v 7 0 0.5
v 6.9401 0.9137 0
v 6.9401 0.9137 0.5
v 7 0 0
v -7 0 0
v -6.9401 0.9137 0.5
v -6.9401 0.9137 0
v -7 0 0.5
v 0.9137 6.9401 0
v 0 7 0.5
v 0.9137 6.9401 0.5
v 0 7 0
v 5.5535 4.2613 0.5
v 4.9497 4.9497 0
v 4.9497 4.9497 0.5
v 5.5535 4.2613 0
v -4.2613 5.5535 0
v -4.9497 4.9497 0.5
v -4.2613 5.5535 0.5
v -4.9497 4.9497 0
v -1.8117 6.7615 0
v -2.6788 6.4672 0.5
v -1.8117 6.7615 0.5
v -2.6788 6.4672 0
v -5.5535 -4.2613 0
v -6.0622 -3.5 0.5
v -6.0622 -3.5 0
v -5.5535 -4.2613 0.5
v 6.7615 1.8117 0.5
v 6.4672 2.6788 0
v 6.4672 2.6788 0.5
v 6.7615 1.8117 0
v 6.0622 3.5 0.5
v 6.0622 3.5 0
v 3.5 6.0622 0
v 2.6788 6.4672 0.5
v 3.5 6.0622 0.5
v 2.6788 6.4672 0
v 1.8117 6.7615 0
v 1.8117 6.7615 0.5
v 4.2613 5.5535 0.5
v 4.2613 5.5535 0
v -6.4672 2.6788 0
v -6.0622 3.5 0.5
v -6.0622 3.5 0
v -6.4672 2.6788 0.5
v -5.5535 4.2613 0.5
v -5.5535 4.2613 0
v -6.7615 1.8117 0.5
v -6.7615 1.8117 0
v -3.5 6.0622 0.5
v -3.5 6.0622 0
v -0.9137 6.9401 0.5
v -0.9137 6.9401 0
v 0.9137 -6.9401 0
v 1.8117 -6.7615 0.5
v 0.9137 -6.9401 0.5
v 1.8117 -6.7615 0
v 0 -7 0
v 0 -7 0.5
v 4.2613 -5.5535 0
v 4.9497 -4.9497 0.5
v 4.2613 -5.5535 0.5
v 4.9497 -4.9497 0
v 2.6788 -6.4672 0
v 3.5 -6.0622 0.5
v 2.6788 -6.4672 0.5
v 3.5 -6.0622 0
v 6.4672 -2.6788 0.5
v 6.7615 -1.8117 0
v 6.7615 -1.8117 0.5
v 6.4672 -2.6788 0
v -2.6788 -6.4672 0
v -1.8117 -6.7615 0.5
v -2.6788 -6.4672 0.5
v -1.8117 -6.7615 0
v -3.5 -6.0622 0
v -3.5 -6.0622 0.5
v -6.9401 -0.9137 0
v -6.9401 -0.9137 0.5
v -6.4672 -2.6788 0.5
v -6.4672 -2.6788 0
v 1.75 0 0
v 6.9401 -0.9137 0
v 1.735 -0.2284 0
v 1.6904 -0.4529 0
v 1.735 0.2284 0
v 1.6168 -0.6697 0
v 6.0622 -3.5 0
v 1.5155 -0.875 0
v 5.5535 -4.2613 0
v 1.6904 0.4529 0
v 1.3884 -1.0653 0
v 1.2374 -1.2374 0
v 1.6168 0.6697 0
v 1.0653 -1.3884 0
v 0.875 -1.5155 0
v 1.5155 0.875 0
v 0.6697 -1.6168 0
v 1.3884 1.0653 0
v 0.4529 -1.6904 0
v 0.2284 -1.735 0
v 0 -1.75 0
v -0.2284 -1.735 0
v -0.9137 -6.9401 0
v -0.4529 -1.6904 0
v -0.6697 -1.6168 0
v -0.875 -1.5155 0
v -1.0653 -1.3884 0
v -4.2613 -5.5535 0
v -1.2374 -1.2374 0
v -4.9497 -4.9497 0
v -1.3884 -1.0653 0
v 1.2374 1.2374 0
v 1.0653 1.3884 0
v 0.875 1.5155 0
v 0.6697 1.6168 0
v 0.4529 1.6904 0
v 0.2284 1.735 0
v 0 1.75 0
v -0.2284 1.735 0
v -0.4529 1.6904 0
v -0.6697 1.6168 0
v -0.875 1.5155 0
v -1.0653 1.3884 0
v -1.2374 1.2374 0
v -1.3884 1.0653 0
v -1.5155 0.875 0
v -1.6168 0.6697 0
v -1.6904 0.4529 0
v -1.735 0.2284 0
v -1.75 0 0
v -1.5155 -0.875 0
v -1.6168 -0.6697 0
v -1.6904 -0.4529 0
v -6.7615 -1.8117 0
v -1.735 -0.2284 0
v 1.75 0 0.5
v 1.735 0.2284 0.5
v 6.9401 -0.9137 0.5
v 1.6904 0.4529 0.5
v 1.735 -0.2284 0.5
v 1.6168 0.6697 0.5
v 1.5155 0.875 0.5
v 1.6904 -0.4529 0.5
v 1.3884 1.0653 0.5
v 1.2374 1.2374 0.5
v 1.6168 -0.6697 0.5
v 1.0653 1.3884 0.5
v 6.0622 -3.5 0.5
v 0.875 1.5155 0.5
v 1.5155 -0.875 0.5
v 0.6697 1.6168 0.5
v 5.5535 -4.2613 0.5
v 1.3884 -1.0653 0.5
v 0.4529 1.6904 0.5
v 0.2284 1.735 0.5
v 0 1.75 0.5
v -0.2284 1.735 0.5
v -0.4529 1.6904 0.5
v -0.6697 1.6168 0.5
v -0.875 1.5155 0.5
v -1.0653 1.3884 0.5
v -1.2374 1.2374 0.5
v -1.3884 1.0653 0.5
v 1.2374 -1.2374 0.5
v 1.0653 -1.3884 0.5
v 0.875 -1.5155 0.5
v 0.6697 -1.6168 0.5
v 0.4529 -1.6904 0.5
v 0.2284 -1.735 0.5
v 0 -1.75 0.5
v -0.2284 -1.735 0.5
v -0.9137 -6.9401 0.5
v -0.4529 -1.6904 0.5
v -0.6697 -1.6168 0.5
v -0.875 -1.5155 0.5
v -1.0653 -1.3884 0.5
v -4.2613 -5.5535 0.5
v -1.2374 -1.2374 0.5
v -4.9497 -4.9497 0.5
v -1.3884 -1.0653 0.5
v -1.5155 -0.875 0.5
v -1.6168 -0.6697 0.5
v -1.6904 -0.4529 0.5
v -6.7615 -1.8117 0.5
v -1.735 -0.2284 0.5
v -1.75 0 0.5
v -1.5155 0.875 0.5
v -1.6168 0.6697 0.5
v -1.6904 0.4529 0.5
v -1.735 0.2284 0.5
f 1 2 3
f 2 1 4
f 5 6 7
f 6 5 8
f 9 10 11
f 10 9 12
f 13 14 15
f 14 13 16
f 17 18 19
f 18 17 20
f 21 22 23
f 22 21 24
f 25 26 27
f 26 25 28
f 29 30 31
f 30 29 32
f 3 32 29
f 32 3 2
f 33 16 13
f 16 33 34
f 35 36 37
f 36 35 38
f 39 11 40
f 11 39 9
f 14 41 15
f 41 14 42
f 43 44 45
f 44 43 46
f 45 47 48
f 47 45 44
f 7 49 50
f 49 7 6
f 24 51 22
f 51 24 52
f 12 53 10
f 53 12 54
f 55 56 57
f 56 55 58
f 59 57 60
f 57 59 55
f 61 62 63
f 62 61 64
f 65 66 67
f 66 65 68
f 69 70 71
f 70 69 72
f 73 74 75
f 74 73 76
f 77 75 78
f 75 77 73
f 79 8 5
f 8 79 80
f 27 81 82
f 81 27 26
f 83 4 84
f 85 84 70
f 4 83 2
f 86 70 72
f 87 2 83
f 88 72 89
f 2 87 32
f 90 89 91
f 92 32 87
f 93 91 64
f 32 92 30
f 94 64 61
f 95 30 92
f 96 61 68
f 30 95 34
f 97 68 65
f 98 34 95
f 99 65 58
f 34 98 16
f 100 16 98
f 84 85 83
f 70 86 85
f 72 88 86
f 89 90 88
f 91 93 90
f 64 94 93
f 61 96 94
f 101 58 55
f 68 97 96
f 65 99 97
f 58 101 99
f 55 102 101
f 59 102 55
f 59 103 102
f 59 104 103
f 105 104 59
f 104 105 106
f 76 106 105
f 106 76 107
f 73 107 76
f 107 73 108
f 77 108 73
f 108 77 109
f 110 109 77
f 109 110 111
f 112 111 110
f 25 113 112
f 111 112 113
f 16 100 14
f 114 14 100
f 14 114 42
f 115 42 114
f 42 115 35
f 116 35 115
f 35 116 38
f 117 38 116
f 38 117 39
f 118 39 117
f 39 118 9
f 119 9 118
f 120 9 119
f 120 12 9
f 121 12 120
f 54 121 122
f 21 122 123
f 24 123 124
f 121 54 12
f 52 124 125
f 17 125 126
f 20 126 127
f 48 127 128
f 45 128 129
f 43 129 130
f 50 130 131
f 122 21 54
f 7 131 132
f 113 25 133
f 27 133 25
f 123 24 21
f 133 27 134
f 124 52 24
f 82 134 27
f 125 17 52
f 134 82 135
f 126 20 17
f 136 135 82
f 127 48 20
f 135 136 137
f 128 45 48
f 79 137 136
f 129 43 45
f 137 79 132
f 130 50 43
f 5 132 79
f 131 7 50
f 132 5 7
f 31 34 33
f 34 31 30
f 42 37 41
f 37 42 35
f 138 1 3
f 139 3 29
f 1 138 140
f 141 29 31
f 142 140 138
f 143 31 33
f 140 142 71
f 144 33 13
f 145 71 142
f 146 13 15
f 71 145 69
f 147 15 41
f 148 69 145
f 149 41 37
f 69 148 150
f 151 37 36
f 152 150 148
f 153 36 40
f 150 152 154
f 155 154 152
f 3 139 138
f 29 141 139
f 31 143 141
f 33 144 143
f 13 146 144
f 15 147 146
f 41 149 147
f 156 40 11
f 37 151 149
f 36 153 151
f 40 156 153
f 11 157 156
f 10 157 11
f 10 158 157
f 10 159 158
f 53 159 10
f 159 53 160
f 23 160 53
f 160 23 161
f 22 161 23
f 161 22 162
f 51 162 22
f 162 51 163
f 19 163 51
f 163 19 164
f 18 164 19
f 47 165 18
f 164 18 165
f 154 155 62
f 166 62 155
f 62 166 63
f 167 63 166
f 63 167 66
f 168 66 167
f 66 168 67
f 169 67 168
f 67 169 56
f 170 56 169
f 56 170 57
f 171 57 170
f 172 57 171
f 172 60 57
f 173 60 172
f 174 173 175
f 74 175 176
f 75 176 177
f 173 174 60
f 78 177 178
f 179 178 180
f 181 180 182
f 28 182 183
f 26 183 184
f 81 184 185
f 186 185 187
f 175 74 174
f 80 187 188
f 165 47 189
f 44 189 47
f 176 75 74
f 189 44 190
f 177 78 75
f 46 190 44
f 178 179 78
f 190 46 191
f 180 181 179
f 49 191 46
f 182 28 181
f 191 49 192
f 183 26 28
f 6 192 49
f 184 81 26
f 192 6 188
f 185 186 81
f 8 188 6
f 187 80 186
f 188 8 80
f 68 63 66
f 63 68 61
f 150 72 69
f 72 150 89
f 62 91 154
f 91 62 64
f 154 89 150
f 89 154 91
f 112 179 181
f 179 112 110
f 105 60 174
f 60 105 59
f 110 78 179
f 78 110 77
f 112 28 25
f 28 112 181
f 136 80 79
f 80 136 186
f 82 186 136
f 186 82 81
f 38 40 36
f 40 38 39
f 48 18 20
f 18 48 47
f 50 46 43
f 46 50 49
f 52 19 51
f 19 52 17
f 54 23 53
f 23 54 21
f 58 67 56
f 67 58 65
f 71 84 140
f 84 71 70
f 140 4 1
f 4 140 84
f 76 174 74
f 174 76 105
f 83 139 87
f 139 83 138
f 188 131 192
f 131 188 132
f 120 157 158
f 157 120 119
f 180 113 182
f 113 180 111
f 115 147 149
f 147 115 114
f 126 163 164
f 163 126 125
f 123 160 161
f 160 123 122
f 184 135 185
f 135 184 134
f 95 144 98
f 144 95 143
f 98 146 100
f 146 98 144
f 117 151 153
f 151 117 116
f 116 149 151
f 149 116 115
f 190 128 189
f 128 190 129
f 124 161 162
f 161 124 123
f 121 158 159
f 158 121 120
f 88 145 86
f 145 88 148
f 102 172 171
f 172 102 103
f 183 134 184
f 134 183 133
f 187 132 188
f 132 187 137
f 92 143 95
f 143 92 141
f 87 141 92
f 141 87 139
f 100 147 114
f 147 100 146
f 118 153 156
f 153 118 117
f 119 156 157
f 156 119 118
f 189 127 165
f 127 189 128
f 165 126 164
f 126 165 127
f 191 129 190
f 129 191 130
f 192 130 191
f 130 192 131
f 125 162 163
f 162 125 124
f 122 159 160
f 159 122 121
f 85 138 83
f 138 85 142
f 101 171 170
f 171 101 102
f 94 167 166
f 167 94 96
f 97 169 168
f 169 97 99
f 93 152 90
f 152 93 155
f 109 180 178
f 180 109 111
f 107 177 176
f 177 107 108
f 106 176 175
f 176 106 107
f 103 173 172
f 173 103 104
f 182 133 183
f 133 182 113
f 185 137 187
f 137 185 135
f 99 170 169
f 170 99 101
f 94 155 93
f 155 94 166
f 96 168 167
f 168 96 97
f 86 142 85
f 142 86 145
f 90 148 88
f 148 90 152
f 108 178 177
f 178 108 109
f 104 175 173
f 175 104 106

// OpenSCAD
// file: parameters.scad
// =============================================================================
// Gen-CA — nightly 2026-10-13 (physics_scorer, honest magpylib watts)
// Break the plate limit instead of the physics: the 2026-10-11 scans showed watts keep rising with machine size, but Ø194 was the largest one-piece stator/rotor set that fits one 410 mm plate. Gen-CA makes the steel disc the structural rotor and prints the magnet carrier as 8 bolt-on arcs per rotor plus a separate D-flat hub, opens the stator centre, and prints the 12 bobbin bases in place inside their stator bays, so a much bigger R84 / Ø226 machine (bobbins r64–104, 4.95 mm copper, 7.55 mm magnet gap) still packs on ONE plate.
// Clocking 0 deg (magnets N facing S) + D-flat keyed bore + index notch + flip-symmetric hole map.
// Windable 2-piece bobbin; turns = physics_scorer turns_fit; copper only between flanges.
// Steel back-iron: 2× Ø194 × 4.76 mm (3/16") mild-steel discs (steel_backiron_disc.dxf); magnets sit ON the steel
// (through-pockets) -> score with --back-iron. Night 2026-10-13.
// =============================================================================
topology            = "dual_rotor";

// --- Wire / winding (physics_scorer winding-fit) -------------------------------
wire_awg            = 26;
wire_od             = 0.45;     // insulated OD mm (bare 0.405)
fill_realistic      = 0.65;     // insulated-wire area / window (DENSE layered wind with a jig; scorer cap 0.65)
turns               = 366;       // = physics_scorer turns_fit (do NOT raise)
coil_former_type    = "bobbin";
coil_core_inset     = 18.10;     // radial copper build: hub = copper boundary inset by this
wind_build_axial    = 0.0;      // nothing proud of the flanges
wind_build_radial   = 0.0;

// --- Bobbin (base + lid) ---------------------------------------------------------
coil_id_r           = 64.00;    // copper boundary sector
coil_od_r           = 104.00;
span_deg            = 26.87;    // = pitch - 2*asin((wall+0.85)/coil_id_r) -> >=1.2 mm stator web
former_web          = 4.95;     // copper height between flanges (TALL copper: steel keeps Bz up)
flange_t            = 0.80;     // >= 0.8 mm FDM wall rule (tall winds push on the flanges)
wall                = 0.80;     // flange lip beyond copper
former_bare_h       = former_web + 2 * flange_t;
coil_envelope_h     = former_bare_h + 2 * wind_build_axial;
tab_w               = 7.0;
tab_len             = 7.0;
tab_h               = former_bare_h / 2;
pin_d               = 1.9;      // 1.75 mm filament locating pin
coil_mount_r        = coil_od_r + 0.2 + 4.0;
lead_y              = 1.6;
lead_slot_w         = 0.9;
lead_groove_d       = 0.6;

// --- Gap -------------------------------------------------------------------------
run_clear           = 0.50;     // rotor face -> flange
gap_spacer_h        = run_clear + wind_build_axial;
m2m                 = coil_envelope_h + 2 * run_clear;   // rotor face to rotor face (= gap_sleeve length)

// --- Stator ----------------------------------------------------------------------
coil_stations       = 12;
bay_clear           = 0.35;     // 0.35 mm: bobbin BASES print IN PLACE inside the stator bays (print-in-place gap), then pop out
stator_thick        = former_bare_h;                        // bobbins flush both faces
stator_od           = 226;
shaft_clear_stator  = 14.0;     // stator is static; gap sleeve OD 12 spins inside
stator_ir           = 58.85;    // ANNULAR stator: open centre (nested one-plate pack); inner rim 4.0 mm

// --- Rotor(s) --------------------------------------------------------------------
magnet_Br           = 1.43;     // N52
magnet_d_large      = 20.0;
magnet_h_large      = 5.0;      // one O20x5 per pocket
magnet_h_small      = 5.0;      // unused: no O5 pockets in this kit
halbach_magnetisation = "none";  // NO O5 assist magnets in this kit (scan: they lower the 4-pole score)
rotor_b_same_axis   = true;     // same-index magnets share one axis: N faces S across the gap
large_pocket_d      = 20.3;
small_pocket_d      = 5.3;
pocket_h            = 5.00;     // THROUGH the carrier: magnet back face sits on the steel disc (FLUSH seat: carrier = magnet height, magnet face level with the rotor face)
large_n             = 8;
R_large             = 84.0;
small_r_list        = [];       // no O5 pockets
carrier_od          = 194.0;
ring_ir             = 70.85;    // RING rotor: PLA magnet ring r ring_ir..carrier_od/2 (steel disc = structural rotor)
hub_flange_od       = 74.0;     // separate rotor_hub flange (inside the ring, flush with the ring face)
csk_d               = 6.6;      // M3 countersunk head pocket (ISO 10642 head 6.0 nominal) on the stator face
csk_depth           = 1.55;     // = (csk_d - m3_clear) / 2: 90 deg cone; head sits 0.3 mm below the face
n_seg               = 8;        // magnet-carrier ARCS per rotor (segmented carrier)
seg_deg             = 360 / n_seg;
seg_start           = -22.5;   // arc edge angle (between pocket 0 and its clamp bolt)
seg_kerf_deg        = 0.4;      // gap between neighbouring arcs on the steel
carrier_thick       = pocket_h;
hub_h               = 12.0;     // > steel_t + insert: radial set-screw clears the steel
hub_od              = 24.0;     // slim hub so the M4 brace rods fit at R~18 inside the coil ring
hub_insert_d        = 4.0;      // M3 heat-set insert, radial, bears on the D-flat
rotor_b_offset_deg  = 0.0;      // CLOCKING: magnets directly opposite
shaft_key           = "dflat";
dflat_depth         = 0.5;      // 8 mm shaft with 0.5 mm flat (7.5 across flat)
index_notch_d       = 3.0;

// --- Steel back-iron (buyable laser-cut) -------------------------------------------
steel_t             = 4.76;      // mild steel thickness (image method ignores it; sized from steel_flux.py so the return path stays well below saturation)
steel_center_hole   = 26.0;     // slips over the rotor hub (OD 24)
steel_od            = carrier_od;   // steel disc OD = rotor carrier OD

// --- Modular MAX interface ----------------------------------------------------------
shaft_bore          = 8.35;
dflat_x             = 4.0 - dflat_depth + (shaft_bore - 8.0) / 2;
bearing_d           = 21.85;
bearing_h           = 7.2;
m3_clear            = 3.5;
bolt_r_inner        = 30.0;     // M3 steel-disc clamp bolts (inside the magnet ring)
bolt_n_inner        = 4;
bolt_inner_angles   = [0, 90, 180, 270];
bolt_r_outer        = 84.0;     // second M3 steel-disc clamp ring
bolt_outer_angles   = [22.5, 67.5, 112.5, 157.5, 202.5, 247.5, 292.5, 337.5];
flange_bolt_r       = 107.5;     // frame rods: OUTSIDE the rotor OD (rotors spin inside them)
flange_bolt_n       = 4;
flange_bolt_offset  = 45.00;    // between coil stations -> never cuts a lead groove/tab
brace_r             = 18.0;
brace_d             = 4.3;      // temporary M4 jack rods (assembly only)
brace_n             = 4;
brace_angles        = [45, 135, 225, 315];          // flip-symmetric

spacer_pad_od       = 14.0;
spacer_pad_id       = m3_clear;
endbell_od          = 225.0;
endbell_thick       = 8.0;
endbell_shaft_clear = 10.0;
collar_h            = 10.0;
standoff_od         = 9.0;
frame_standoff_h    = run_clear + carrier_thick + hub_h + collar_h + 2.0;
sleeve_od           = 12.0;
plate_max_mm        = 410;

$fn = 64;
// main file
// Gen-CA — assembly gap shim, h = run_clear (rotor face -> flange); copper is inside the flanges
include <parameters.scad>;
$fn = 48;
difference() {
    cylinder(d=spacer_pad_od, h=gap_spacer_h);
    translate([0, 0, -0.1]) cylinder(d=spacer_pad_id, h=gap_spacer_h + 0.2);
}
